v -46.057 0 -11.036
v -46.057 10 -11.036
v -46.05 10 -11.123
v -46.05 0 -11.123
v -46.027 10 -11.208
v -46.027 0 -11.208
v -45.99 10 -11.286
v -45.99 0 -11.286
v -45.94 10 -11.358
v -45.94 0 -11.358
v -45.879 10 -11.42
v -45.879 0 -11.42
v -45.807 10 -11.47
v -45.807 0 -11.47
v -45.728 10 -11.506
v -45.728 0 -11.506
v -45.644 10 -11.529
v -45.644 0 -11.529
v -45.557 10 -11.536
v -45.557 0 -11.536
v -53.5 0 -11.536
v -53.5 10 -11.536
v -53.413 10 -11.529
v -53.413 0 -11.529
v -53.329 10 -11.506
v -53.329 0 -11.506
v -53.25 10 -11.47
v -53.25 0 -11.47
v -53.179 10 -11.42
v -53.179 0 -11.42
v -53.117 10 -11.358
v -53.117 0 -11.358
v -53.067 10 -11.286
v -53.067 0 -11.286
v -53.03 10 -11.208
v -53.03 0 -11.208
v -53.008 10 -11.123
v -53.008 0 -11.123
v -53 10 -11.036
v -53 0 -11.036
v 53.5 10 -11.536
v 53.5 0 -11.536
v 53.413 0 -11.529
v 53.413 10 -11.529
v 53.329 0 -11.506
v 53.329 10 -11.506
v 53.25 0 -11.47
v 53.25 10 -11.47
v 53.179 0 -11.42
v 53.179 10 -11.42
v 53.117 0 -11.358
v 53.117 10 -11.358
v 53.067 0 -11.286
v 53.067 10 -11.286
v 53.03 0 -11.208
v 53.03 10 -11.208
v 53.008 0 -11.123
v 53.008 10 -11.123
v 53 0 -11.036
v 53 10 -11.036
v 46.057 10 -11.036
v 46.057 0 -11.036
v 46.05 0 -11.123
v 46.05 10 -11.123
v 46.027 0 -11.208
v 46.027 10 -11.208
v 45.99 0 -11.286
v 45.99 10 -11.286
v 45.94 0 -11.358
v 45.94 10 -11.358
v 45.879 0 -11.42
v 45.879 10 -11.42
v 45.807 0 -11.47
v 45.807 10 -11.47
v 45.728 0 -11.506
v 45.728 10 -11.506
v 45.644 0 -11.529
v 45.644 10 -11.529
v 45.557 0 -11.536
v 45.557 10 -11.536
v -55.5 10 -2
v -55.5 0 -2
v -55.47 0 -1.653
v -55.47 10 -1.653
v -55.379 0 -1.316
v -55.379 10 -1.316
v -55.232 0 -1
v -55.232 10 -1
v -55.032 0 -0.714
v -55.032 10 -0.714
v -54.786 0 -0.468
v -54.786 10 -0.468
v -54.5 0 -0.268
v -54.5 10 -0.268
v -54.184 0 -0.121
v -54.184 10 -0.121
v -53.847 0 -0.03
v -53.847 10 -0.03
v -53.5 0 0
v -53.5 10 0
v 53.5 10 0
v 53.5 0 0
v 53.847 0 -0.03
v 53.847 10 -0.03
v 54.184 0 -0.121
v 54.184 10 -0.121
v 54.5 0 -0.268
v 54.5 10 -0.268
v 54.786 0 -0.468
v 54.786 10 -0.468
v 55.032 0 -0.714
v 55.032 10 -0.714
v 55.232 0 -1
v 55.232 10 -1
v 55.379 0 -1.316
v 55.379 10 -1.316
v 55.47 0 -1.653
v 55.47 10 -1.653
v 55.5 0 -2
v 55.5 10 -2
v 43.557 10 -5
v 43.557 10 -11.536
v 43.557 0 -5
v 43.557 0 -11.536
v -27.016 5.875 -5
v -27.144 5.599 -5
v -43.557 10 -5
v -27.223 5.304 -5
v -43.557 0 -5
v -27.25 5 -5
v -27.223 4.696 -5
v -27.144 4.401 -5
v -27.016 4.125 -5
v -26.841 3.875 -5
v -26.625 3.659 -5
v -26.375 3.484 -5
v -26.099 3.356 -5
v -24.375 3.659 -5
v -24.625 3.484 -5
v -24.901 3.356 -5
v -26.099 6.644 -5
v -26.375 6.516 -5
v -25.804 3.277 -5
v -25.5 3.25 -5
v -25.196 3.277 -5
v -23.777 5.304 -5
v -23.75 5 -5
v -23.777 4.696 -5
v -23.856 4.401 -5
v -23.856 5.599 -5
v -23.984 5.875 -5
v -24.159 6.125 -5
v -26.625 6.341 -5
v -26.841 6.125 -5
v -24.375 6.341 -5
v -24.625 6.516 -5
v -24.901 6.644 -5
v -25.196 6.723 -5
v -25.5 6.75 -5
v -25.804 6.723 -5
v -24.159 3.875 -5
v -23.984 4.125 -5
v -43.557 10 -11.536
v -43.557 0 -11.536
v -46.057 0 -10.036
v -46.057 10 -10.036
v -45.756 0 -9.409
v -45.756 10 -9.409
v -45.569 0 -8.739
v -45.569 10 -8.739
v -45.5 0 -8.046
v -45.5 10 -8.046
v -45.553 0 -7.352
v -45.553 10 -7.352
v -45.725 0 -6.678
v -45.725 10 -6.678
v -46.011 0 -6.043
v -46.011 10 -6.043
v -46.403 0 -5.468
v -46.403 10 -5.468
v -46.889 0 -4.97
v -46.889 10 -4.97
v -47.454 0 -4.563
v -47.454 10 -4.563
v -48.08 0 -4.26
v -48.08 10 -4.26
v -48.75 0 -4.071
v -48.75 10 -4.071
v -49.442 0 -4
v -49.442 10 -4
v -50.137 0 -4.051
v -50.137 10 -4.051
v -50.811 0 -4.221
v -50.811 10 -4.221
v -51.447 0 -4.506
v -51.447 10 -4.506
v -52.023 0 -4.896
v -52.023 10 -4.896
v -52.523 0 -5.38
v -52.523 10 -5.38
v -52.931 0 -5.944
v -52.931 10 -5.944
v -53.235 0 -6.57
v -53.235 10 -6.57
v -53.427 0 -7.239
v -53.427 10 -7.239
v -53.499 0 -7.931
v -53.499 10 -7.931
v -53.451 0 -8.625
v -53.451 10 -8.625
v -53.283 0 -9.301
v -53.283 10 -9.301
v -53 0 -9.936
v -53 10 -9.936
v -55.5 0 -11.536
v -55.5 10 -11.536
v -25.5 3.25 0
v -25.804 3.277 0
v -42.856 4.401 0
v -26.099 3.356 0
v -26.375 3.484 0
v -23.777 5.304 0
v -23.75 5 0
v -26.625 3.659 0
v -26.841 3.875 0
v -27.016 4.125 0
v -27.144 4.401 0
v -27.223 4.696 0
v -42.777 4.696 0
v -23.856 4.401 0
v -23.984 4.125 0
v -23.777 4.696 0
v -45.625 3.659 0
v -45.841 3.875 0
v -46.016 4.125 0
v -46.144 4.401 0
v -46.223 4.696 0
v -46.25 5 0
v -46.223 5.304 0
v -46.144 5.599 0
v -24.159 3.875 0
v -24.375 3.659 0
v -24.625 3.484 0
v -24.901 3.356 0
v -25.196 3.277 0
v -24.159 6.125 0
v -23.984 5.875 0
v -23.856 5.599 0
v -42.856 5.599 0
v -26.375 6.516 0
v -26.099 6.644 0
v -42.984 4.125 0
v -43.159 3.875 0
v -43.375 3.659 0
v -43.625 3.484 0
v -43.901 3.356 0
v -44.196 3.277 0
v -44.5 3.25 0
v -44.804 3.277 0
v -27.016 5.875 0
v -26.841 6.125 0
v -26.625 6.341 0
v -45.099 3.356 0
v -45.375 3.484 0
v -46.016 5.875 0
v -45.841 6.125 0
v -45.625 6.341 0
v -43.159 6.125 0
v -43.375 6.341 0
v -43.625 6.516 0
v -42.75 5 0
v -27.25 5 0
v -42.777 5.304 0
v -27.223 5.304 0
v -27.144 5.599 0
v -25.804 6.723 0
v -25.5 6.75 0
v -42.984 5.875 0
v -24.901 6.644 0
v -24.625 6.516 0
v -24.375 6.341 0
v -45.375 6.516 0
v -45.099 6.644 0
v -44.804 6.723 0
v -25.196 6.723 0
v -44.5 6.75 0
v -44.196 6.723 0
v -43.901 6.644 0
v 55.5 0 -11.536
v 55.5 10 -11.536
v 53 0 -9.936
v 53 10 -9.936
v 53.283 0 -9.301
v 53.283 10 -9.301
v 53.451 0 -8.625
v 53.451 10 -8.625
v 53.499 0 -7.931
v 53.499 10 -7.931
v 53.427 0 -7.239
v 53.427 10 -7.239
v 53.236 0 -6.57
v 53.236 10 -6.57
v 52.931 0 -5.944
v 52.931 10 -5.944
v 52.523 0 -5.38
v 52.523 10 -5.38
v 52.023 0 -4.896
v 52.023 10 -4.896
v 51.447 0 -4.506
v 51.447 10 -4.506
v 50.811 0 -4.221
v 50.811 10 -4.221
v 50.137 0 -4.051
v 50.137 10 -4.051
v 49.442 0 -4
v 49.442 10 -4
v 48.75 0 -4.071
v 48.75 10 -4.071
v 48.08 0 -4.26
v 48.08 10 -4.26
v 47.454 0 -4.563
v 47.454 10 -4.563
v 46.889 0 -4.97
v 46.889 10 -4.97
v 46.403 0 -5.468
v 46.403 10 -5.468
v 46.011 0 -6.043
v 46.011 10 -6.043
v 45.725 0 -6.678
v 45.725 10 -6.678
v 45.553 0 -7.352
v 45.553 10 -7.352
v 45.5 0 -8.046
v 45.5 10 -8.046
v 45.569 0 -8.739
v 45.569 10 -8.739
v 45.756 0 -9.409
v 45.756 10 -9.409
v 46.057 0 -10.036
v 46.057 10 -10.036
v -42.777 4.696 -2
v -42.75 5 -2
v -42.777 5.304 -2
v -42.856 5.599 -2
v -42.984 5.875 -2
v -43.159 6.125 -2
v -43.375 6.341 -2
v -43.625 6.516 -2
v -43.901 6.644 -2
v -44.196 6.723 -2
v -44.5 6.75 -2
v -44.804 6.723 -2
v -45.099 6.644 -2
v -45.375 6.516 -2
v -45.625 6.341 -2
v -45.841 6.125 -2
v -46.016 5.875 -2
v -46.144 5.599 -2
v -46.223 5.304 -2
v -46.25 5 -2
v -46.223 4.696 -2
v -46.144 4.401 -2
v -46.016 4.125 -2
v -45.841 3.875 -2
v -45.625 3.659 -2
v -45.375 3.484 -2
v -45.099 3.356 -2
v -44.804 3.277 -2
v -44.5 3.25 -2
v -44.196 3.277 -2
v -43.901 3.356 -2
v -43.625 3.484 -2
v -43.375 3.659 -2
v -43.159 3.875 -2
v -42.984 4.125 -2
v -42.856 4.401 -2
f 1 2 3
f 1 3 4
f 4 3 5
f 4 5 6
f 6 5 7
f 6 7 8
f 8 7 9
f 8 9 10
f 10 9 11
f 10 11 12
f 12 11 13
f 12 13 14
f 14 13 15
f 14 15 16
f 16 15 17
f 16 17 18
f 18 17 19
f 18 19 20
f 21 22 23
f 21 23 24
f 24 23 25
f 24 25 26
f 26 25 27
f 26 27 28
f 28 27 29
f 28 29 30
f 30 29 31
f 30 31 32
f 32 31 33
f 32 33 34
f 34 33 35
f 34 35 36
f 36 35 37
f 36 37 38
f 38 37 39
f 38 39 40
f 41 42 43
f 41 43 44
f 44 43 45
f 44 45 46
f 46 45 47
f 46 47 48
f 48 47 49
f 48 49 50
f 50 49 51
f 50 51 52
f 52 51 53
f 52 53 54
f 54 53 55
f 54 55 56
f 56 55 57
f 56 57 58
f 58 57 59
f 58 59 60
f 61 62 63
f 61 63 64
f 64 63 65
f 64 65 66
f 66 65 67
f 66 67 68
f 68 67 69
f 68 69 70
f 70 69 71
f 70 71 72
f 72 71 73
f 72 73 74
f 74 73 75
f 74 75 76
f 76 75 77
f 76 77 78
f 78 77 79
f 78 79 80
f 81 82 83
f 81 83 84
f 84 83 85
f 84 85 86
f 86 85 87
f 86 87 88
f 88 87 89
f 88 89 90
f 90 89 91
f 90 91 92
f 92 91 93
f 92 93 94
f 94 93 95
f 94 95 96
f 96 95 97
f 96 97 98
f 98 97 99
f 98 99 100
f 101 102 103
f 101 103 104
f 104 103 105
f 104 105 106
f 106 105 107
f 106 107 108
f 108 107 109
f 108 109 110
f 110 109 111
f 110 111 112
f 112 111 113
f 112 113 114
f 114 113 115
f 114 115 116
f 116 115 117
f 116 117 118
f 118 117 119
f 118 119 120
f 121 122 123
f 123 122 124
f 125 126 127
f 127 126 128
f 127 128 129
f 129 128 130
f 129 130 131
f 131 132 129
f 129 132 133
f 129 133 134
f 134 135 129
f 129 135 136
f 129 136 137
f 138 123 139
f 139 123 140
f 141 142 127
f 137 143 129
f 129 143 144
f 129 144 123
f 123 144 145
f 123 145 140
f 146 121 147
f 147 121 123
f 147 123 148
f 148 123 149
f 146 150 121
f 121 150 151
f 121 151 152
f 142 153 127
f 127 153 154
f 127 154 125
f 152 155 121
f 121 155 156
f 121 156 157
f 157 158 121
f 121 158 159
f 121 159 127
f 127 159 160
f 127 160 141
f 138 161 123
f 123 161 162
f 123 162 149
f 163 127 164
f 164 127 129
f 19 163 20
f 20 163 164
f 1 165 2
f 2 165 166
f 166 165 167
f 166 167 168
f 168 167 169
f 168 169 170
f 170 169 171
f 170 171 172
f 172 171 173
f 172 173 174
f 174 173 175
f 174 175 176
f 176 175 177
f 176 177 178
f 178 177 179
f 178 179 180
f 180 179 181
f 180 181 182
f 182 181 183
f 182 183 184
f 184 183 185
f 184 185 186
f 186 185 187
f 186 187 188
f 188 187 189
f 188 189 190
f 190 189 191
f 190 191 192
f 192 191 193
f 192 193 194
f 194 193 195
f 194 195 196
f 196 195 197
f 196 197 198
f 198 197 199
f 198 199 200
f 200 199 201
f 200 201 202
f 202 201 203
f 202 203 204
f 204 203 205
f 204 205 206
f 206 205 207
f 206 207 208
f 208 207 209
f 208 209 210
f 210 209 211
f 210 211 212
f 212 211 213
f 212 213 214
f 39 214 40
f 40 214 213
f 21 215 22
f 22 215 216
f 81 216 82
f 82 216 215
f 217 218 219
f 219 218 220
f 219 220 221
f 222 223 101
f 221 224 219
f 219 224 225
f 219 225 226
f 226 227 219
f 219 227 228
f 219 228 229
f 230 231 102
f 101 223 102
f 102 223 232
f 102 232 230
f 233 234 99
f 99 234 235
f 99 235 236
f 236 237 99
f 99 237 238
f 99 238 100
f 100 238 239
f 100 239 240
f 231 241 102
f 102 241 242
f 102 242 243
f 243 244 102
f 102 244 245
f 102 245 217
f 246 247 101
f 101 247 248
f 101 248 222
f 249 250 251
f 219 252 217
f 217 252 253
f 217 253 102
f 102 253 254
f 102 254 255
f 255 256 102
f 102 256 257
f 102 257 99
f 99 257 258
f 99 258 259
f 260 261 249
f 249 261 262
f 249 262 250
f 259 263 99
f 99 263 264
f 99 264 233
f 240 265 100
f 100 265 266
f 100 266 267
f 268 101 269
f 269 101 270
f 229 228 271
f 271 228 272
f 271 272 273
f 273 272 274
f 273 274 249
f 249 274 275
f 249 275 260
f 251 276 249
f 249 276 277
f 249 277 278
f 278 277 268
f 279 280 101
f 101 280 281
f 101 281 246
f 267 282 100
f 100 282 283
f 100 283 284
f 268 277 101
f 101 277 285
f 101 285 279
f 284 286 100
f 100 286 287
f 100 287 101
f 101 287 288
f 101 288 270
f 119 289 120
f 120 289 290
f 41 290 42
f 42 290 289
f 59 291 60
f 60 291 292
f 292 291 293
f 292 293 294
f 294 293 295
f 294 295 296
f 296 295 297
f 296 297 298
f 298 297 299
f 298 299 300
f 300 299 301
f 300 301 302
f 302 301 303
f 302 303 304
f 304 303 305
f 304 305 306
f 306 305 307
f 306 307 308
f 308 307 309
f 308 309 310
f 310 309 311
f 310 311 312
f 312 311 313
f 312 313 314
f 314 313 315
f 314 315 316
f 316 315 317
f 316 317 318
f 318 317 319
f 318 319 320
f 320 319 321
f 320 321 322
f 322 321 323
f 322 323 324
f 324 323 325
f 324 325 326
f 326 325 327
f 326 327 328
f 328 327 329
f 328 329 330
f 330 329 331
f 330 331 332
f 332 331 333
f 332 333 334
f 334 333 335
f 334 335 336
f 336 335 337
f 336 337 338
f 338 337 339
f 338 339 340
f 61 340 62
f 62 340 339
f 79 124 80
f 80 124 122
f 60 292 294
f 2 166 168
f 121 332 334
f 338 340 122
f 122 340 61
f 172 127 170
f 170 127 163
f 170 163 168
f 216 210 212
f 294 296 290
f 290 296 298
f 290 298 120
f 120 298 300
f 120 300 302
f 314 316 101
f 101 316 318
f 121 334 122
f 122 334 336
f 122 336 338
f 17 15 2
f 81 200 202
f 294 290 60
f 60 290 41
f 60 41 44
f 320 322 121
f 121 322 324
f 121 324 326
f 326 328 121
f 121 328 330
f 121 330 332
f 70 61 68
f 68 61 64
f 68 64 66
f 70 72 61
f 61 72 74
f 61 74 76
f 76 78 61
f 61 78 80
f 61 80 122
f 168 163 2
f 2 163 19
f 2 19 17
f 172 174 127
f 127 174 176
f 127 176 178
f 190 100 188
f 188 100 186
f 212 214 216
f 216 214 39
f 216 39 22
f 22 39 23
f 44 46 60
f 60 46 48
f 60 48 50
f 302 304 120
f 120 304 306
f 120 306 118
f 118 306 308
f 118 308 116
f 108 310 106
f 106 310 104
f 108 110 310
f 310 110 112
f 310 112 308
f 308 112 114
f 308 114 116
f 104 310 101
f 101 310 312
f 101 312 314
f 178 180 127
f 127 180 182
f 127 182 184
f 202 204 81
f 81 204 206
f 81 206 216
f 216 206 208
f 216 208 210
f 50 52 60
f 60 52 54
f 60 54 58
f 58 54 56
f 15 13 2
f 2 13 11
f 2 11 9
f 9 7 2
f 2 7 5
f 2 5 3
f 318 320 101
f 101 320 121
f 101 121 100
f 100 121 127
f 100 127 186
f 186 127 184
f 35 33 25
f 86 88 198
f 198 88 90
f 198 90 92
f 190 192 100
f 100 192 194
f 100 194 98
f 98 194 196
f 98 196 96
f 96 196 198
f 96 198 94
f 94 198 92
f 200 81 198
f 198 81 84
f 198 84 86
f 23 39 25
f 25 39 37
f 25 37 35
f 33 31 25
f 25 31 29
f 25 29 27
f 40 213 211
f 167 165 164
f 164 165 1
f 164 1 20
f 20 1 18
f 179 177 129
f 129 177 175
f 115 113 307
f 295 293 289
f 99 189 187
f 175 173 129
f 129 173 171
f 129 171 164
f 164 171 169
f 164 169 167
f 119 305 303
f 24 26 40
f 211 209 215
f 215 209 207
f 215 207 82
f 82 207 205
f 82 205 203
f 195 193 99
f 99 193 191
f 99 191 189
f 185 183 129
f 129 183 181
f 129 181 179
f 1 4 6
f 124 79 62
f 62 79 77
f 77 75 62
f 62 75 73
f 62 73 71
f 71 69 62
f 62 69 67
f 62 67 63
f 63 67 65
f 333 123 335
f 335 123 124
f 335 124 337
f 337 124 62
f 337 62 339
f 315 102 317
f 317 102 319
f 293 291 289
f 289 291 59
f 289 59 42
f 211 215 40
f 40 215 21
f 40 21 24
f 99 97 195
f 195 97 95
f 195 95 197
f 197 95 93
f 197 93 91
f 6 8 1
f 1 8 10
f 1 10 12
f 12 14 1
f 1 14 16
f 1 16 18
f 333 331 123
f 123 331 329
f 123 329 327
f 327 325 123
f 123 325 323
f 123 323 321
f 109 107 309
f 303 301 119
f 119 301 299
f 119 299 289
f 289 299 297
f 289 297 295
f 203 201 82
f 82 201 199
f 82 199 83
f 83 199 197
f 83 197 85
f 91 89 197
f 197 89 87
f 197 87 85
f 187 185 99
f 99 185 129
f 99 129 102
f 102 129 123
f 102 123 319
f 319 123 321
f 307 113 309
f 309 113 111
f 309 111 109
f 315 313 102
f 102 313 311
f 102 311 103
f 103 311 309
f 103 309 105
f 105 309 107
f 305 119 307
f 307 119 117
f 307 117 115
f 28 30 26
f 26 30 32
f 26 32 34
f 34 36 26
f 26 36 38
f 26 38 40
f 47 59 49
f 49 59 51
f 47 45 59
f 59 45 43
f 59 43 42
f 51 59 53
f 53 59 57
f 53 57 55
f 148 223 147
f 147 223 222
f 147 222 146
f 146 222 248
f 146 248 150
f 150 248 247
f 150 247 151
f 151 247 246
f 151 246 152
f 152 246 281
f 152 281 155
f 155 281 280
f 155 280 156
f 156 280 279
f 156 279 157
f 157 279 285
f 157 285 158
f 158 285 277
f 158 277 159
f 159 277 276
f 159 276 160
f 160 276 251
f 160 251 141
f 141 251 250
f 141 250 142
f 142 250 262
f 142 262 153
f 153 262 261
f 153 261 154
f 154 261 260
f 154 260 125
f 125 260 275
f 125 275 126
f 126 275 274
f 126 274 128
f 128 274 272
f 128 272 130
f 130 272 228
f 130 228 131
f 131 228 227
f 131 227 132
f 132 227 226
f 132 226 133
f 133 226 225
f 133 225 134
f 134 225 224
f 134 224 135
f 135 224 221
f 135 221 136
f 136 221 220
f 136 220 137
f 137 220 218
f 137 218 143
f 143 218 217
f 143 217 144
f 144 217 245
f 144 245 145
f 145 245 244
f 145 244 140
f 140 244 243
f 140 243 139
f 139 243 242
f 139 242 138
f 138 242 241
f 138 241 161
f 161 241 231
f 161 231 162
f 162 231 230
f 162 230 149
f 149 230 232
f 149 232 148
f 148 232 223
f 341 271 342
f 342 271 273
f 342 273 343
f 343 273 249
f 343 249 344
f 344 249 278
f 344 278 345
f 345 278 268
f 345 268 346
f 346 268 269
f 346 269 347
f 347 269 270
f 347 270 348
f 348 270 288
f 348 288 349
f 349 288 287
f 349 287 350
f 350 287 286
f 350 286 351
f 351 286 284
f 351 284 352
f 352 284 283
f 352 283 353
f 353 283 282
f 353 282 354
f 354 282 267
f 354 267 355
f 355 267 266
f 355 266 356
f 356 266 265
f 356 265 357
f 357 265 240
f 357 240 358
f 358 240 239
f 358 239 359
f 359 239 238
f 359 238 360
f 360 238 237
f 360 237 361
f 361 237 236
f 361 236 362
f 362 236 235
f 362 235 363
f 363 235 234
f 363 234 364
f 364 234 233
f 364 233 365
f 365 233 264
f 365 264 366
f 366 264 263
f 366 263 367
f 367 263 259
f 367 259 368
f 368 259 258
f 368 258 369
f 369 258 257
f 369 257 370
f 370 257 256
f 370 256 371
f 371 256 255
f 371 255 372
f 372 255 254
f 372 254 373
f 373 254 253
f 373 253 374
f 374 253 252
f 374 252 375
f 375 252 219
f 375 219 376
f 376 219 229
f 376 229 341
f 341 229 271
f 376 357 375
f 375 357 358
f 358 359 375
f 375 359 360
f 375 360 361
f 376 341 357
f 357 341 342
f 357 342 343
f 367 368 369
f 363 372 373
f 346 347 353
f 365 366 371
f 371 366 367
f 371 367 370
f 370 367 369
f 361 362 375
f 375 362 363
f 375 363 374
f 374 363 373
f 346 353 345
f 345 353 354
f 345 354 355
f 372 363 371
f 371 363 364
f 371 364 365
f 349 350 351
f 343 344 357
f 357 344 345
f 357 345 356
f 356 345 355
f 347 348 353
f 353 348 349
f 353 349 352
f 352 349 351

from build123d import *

# Parameters (mm, degrees)
BOSS_EXTRUDE1_DEPTH = 10
FILLET1_R           = 2
FILLET2_R           = 2
FILLET3_R           = 0.5
FILLET4_R           = 0.5
FILLET5_R           = 0.5
FILLET6_R           = 0.5
MOUNTING_HOLE_R     = 1.75
CUT_EXTRUDE1_DEPTH  = 5
MOUNTING_CONE_R     = 1.75
CUT_EXTRUDE2_DEPTH  = 2


with BuildPart() as part:
    # Clip → Boss-Extrude1 (new body)
    with BuildSketch(Plane(origin=(0, 0, 0), x_dir=(1, 0, 0), z_dir=(0, 1, 0))):
        with BuildLine():
            Line((-55.5, 0), (55.5, 0))
            Line((55.5, 0), (55.5, 11.536491673))
            Line((55.5, 11.536491673), (53, 11.536491673))
            Line((53, 11.536491673), (53, 9.936491673))
            ThreePointArc((53, 9.936491673), (49.442392127, 4.000414855), (46.057224715, 10.036491673))
            Line((46.057224715, 10.036491673), (46.057224715, 11.536491673))
            Line((46.057224715, 11.536491673), (43.557224715, 11.536491673))
            Line((43.557224715, 11.536491673), (43.557224715, 5))
            Line((43.557224715, 5), (-43.557224715, 5))
            Line((-43.557224715, 5), (-43.557224715, 11.536491673))
            Line((-43.557224715, 11.536491673), (-46.057224715, 11.536491673))
            Line((-46.057224715, 11.536491673), (-46.057224715, 10.036491673))
            ThreePointArc((-46.057224715, 10.036491673), (-49.442392127, 4.000414855), (-53, 9.936491673))
            Line((-53, 9.936491673), (-53, 11.536491673))
            Line((-53, 11.536491673), (-55.5, 11.536491673))
            Line((-55.5, 11.536491673), (-55.5, 0))
        make_face()
    extrude(amount=BOSS_EXTRUDE1_DEPTH)

    # Fillet1
    fillet1_edges = [part.edges().sort_by_distance(p)[0] for p in [
        (55.5, 5, 0),
    ]]
    fillet(fillet1_edges, radius=FILLET1_R)

    # Fillet2
    fillet2_edges = [part.edges().sort_by_distance(p)[0] for p in [
        (-55.5, 5, 0),
    ]]
    fillet(fillet2_edges, radius=FILLET2_R)

    # Fillet3
    fillet3_edges = [part.edges().sort_by_distance(p)[0] for p in [
        (46.057224715, 5, -11.536491673),
    ]]
    fillet(fillet3_edges, radius=FILLET3_R)

    # Fillet4
    fillet4_edges = [part.edges().sort_by_distance(p)[0] for p in [
        (53, 5, -11.536491673),
    ]]
    fillet(fillet4_edges, radius=FILLET4_R)

    # Fillet5
    fillet5_edges = [part.edges().sort_by_distance(p)[0] for p in [
        (-53, 5, -11.536491673),
    ]]
    fillet(fillet5_edges, radius=FILLET5_R)

    # Fillet6
    fillet6_edges = [part.edges().sort_by_distance(p)[0] for p in [
        (-46.057224715, 5, -11.536491673),
    ]]
    fillet(fillet6_edges, radius=FILLET6_R)

    # Mounting Hole → Cut-Extrude1 (cut)
    with BuildSketch(Plane.XY):
        with Locations((-25.5, 5)):
            Circle(MOUNTING_HOLE_R)
    extrude(amount=-CUT_EXTRUDE1_DEPTH, mode=Mode.SUBTRACT)

    # Mounting Cone → Cut-Extrude2 (cut)
    with BuildSketch(Plane.XY):
        with Locations((-44.5, 5)):
            Circle(MOUNTING_CONE_R)
    extrude(amount=-CUT_EXTRUDE2_DEPTH, mode=Mode.SUBTRACT)


solid = part.part
